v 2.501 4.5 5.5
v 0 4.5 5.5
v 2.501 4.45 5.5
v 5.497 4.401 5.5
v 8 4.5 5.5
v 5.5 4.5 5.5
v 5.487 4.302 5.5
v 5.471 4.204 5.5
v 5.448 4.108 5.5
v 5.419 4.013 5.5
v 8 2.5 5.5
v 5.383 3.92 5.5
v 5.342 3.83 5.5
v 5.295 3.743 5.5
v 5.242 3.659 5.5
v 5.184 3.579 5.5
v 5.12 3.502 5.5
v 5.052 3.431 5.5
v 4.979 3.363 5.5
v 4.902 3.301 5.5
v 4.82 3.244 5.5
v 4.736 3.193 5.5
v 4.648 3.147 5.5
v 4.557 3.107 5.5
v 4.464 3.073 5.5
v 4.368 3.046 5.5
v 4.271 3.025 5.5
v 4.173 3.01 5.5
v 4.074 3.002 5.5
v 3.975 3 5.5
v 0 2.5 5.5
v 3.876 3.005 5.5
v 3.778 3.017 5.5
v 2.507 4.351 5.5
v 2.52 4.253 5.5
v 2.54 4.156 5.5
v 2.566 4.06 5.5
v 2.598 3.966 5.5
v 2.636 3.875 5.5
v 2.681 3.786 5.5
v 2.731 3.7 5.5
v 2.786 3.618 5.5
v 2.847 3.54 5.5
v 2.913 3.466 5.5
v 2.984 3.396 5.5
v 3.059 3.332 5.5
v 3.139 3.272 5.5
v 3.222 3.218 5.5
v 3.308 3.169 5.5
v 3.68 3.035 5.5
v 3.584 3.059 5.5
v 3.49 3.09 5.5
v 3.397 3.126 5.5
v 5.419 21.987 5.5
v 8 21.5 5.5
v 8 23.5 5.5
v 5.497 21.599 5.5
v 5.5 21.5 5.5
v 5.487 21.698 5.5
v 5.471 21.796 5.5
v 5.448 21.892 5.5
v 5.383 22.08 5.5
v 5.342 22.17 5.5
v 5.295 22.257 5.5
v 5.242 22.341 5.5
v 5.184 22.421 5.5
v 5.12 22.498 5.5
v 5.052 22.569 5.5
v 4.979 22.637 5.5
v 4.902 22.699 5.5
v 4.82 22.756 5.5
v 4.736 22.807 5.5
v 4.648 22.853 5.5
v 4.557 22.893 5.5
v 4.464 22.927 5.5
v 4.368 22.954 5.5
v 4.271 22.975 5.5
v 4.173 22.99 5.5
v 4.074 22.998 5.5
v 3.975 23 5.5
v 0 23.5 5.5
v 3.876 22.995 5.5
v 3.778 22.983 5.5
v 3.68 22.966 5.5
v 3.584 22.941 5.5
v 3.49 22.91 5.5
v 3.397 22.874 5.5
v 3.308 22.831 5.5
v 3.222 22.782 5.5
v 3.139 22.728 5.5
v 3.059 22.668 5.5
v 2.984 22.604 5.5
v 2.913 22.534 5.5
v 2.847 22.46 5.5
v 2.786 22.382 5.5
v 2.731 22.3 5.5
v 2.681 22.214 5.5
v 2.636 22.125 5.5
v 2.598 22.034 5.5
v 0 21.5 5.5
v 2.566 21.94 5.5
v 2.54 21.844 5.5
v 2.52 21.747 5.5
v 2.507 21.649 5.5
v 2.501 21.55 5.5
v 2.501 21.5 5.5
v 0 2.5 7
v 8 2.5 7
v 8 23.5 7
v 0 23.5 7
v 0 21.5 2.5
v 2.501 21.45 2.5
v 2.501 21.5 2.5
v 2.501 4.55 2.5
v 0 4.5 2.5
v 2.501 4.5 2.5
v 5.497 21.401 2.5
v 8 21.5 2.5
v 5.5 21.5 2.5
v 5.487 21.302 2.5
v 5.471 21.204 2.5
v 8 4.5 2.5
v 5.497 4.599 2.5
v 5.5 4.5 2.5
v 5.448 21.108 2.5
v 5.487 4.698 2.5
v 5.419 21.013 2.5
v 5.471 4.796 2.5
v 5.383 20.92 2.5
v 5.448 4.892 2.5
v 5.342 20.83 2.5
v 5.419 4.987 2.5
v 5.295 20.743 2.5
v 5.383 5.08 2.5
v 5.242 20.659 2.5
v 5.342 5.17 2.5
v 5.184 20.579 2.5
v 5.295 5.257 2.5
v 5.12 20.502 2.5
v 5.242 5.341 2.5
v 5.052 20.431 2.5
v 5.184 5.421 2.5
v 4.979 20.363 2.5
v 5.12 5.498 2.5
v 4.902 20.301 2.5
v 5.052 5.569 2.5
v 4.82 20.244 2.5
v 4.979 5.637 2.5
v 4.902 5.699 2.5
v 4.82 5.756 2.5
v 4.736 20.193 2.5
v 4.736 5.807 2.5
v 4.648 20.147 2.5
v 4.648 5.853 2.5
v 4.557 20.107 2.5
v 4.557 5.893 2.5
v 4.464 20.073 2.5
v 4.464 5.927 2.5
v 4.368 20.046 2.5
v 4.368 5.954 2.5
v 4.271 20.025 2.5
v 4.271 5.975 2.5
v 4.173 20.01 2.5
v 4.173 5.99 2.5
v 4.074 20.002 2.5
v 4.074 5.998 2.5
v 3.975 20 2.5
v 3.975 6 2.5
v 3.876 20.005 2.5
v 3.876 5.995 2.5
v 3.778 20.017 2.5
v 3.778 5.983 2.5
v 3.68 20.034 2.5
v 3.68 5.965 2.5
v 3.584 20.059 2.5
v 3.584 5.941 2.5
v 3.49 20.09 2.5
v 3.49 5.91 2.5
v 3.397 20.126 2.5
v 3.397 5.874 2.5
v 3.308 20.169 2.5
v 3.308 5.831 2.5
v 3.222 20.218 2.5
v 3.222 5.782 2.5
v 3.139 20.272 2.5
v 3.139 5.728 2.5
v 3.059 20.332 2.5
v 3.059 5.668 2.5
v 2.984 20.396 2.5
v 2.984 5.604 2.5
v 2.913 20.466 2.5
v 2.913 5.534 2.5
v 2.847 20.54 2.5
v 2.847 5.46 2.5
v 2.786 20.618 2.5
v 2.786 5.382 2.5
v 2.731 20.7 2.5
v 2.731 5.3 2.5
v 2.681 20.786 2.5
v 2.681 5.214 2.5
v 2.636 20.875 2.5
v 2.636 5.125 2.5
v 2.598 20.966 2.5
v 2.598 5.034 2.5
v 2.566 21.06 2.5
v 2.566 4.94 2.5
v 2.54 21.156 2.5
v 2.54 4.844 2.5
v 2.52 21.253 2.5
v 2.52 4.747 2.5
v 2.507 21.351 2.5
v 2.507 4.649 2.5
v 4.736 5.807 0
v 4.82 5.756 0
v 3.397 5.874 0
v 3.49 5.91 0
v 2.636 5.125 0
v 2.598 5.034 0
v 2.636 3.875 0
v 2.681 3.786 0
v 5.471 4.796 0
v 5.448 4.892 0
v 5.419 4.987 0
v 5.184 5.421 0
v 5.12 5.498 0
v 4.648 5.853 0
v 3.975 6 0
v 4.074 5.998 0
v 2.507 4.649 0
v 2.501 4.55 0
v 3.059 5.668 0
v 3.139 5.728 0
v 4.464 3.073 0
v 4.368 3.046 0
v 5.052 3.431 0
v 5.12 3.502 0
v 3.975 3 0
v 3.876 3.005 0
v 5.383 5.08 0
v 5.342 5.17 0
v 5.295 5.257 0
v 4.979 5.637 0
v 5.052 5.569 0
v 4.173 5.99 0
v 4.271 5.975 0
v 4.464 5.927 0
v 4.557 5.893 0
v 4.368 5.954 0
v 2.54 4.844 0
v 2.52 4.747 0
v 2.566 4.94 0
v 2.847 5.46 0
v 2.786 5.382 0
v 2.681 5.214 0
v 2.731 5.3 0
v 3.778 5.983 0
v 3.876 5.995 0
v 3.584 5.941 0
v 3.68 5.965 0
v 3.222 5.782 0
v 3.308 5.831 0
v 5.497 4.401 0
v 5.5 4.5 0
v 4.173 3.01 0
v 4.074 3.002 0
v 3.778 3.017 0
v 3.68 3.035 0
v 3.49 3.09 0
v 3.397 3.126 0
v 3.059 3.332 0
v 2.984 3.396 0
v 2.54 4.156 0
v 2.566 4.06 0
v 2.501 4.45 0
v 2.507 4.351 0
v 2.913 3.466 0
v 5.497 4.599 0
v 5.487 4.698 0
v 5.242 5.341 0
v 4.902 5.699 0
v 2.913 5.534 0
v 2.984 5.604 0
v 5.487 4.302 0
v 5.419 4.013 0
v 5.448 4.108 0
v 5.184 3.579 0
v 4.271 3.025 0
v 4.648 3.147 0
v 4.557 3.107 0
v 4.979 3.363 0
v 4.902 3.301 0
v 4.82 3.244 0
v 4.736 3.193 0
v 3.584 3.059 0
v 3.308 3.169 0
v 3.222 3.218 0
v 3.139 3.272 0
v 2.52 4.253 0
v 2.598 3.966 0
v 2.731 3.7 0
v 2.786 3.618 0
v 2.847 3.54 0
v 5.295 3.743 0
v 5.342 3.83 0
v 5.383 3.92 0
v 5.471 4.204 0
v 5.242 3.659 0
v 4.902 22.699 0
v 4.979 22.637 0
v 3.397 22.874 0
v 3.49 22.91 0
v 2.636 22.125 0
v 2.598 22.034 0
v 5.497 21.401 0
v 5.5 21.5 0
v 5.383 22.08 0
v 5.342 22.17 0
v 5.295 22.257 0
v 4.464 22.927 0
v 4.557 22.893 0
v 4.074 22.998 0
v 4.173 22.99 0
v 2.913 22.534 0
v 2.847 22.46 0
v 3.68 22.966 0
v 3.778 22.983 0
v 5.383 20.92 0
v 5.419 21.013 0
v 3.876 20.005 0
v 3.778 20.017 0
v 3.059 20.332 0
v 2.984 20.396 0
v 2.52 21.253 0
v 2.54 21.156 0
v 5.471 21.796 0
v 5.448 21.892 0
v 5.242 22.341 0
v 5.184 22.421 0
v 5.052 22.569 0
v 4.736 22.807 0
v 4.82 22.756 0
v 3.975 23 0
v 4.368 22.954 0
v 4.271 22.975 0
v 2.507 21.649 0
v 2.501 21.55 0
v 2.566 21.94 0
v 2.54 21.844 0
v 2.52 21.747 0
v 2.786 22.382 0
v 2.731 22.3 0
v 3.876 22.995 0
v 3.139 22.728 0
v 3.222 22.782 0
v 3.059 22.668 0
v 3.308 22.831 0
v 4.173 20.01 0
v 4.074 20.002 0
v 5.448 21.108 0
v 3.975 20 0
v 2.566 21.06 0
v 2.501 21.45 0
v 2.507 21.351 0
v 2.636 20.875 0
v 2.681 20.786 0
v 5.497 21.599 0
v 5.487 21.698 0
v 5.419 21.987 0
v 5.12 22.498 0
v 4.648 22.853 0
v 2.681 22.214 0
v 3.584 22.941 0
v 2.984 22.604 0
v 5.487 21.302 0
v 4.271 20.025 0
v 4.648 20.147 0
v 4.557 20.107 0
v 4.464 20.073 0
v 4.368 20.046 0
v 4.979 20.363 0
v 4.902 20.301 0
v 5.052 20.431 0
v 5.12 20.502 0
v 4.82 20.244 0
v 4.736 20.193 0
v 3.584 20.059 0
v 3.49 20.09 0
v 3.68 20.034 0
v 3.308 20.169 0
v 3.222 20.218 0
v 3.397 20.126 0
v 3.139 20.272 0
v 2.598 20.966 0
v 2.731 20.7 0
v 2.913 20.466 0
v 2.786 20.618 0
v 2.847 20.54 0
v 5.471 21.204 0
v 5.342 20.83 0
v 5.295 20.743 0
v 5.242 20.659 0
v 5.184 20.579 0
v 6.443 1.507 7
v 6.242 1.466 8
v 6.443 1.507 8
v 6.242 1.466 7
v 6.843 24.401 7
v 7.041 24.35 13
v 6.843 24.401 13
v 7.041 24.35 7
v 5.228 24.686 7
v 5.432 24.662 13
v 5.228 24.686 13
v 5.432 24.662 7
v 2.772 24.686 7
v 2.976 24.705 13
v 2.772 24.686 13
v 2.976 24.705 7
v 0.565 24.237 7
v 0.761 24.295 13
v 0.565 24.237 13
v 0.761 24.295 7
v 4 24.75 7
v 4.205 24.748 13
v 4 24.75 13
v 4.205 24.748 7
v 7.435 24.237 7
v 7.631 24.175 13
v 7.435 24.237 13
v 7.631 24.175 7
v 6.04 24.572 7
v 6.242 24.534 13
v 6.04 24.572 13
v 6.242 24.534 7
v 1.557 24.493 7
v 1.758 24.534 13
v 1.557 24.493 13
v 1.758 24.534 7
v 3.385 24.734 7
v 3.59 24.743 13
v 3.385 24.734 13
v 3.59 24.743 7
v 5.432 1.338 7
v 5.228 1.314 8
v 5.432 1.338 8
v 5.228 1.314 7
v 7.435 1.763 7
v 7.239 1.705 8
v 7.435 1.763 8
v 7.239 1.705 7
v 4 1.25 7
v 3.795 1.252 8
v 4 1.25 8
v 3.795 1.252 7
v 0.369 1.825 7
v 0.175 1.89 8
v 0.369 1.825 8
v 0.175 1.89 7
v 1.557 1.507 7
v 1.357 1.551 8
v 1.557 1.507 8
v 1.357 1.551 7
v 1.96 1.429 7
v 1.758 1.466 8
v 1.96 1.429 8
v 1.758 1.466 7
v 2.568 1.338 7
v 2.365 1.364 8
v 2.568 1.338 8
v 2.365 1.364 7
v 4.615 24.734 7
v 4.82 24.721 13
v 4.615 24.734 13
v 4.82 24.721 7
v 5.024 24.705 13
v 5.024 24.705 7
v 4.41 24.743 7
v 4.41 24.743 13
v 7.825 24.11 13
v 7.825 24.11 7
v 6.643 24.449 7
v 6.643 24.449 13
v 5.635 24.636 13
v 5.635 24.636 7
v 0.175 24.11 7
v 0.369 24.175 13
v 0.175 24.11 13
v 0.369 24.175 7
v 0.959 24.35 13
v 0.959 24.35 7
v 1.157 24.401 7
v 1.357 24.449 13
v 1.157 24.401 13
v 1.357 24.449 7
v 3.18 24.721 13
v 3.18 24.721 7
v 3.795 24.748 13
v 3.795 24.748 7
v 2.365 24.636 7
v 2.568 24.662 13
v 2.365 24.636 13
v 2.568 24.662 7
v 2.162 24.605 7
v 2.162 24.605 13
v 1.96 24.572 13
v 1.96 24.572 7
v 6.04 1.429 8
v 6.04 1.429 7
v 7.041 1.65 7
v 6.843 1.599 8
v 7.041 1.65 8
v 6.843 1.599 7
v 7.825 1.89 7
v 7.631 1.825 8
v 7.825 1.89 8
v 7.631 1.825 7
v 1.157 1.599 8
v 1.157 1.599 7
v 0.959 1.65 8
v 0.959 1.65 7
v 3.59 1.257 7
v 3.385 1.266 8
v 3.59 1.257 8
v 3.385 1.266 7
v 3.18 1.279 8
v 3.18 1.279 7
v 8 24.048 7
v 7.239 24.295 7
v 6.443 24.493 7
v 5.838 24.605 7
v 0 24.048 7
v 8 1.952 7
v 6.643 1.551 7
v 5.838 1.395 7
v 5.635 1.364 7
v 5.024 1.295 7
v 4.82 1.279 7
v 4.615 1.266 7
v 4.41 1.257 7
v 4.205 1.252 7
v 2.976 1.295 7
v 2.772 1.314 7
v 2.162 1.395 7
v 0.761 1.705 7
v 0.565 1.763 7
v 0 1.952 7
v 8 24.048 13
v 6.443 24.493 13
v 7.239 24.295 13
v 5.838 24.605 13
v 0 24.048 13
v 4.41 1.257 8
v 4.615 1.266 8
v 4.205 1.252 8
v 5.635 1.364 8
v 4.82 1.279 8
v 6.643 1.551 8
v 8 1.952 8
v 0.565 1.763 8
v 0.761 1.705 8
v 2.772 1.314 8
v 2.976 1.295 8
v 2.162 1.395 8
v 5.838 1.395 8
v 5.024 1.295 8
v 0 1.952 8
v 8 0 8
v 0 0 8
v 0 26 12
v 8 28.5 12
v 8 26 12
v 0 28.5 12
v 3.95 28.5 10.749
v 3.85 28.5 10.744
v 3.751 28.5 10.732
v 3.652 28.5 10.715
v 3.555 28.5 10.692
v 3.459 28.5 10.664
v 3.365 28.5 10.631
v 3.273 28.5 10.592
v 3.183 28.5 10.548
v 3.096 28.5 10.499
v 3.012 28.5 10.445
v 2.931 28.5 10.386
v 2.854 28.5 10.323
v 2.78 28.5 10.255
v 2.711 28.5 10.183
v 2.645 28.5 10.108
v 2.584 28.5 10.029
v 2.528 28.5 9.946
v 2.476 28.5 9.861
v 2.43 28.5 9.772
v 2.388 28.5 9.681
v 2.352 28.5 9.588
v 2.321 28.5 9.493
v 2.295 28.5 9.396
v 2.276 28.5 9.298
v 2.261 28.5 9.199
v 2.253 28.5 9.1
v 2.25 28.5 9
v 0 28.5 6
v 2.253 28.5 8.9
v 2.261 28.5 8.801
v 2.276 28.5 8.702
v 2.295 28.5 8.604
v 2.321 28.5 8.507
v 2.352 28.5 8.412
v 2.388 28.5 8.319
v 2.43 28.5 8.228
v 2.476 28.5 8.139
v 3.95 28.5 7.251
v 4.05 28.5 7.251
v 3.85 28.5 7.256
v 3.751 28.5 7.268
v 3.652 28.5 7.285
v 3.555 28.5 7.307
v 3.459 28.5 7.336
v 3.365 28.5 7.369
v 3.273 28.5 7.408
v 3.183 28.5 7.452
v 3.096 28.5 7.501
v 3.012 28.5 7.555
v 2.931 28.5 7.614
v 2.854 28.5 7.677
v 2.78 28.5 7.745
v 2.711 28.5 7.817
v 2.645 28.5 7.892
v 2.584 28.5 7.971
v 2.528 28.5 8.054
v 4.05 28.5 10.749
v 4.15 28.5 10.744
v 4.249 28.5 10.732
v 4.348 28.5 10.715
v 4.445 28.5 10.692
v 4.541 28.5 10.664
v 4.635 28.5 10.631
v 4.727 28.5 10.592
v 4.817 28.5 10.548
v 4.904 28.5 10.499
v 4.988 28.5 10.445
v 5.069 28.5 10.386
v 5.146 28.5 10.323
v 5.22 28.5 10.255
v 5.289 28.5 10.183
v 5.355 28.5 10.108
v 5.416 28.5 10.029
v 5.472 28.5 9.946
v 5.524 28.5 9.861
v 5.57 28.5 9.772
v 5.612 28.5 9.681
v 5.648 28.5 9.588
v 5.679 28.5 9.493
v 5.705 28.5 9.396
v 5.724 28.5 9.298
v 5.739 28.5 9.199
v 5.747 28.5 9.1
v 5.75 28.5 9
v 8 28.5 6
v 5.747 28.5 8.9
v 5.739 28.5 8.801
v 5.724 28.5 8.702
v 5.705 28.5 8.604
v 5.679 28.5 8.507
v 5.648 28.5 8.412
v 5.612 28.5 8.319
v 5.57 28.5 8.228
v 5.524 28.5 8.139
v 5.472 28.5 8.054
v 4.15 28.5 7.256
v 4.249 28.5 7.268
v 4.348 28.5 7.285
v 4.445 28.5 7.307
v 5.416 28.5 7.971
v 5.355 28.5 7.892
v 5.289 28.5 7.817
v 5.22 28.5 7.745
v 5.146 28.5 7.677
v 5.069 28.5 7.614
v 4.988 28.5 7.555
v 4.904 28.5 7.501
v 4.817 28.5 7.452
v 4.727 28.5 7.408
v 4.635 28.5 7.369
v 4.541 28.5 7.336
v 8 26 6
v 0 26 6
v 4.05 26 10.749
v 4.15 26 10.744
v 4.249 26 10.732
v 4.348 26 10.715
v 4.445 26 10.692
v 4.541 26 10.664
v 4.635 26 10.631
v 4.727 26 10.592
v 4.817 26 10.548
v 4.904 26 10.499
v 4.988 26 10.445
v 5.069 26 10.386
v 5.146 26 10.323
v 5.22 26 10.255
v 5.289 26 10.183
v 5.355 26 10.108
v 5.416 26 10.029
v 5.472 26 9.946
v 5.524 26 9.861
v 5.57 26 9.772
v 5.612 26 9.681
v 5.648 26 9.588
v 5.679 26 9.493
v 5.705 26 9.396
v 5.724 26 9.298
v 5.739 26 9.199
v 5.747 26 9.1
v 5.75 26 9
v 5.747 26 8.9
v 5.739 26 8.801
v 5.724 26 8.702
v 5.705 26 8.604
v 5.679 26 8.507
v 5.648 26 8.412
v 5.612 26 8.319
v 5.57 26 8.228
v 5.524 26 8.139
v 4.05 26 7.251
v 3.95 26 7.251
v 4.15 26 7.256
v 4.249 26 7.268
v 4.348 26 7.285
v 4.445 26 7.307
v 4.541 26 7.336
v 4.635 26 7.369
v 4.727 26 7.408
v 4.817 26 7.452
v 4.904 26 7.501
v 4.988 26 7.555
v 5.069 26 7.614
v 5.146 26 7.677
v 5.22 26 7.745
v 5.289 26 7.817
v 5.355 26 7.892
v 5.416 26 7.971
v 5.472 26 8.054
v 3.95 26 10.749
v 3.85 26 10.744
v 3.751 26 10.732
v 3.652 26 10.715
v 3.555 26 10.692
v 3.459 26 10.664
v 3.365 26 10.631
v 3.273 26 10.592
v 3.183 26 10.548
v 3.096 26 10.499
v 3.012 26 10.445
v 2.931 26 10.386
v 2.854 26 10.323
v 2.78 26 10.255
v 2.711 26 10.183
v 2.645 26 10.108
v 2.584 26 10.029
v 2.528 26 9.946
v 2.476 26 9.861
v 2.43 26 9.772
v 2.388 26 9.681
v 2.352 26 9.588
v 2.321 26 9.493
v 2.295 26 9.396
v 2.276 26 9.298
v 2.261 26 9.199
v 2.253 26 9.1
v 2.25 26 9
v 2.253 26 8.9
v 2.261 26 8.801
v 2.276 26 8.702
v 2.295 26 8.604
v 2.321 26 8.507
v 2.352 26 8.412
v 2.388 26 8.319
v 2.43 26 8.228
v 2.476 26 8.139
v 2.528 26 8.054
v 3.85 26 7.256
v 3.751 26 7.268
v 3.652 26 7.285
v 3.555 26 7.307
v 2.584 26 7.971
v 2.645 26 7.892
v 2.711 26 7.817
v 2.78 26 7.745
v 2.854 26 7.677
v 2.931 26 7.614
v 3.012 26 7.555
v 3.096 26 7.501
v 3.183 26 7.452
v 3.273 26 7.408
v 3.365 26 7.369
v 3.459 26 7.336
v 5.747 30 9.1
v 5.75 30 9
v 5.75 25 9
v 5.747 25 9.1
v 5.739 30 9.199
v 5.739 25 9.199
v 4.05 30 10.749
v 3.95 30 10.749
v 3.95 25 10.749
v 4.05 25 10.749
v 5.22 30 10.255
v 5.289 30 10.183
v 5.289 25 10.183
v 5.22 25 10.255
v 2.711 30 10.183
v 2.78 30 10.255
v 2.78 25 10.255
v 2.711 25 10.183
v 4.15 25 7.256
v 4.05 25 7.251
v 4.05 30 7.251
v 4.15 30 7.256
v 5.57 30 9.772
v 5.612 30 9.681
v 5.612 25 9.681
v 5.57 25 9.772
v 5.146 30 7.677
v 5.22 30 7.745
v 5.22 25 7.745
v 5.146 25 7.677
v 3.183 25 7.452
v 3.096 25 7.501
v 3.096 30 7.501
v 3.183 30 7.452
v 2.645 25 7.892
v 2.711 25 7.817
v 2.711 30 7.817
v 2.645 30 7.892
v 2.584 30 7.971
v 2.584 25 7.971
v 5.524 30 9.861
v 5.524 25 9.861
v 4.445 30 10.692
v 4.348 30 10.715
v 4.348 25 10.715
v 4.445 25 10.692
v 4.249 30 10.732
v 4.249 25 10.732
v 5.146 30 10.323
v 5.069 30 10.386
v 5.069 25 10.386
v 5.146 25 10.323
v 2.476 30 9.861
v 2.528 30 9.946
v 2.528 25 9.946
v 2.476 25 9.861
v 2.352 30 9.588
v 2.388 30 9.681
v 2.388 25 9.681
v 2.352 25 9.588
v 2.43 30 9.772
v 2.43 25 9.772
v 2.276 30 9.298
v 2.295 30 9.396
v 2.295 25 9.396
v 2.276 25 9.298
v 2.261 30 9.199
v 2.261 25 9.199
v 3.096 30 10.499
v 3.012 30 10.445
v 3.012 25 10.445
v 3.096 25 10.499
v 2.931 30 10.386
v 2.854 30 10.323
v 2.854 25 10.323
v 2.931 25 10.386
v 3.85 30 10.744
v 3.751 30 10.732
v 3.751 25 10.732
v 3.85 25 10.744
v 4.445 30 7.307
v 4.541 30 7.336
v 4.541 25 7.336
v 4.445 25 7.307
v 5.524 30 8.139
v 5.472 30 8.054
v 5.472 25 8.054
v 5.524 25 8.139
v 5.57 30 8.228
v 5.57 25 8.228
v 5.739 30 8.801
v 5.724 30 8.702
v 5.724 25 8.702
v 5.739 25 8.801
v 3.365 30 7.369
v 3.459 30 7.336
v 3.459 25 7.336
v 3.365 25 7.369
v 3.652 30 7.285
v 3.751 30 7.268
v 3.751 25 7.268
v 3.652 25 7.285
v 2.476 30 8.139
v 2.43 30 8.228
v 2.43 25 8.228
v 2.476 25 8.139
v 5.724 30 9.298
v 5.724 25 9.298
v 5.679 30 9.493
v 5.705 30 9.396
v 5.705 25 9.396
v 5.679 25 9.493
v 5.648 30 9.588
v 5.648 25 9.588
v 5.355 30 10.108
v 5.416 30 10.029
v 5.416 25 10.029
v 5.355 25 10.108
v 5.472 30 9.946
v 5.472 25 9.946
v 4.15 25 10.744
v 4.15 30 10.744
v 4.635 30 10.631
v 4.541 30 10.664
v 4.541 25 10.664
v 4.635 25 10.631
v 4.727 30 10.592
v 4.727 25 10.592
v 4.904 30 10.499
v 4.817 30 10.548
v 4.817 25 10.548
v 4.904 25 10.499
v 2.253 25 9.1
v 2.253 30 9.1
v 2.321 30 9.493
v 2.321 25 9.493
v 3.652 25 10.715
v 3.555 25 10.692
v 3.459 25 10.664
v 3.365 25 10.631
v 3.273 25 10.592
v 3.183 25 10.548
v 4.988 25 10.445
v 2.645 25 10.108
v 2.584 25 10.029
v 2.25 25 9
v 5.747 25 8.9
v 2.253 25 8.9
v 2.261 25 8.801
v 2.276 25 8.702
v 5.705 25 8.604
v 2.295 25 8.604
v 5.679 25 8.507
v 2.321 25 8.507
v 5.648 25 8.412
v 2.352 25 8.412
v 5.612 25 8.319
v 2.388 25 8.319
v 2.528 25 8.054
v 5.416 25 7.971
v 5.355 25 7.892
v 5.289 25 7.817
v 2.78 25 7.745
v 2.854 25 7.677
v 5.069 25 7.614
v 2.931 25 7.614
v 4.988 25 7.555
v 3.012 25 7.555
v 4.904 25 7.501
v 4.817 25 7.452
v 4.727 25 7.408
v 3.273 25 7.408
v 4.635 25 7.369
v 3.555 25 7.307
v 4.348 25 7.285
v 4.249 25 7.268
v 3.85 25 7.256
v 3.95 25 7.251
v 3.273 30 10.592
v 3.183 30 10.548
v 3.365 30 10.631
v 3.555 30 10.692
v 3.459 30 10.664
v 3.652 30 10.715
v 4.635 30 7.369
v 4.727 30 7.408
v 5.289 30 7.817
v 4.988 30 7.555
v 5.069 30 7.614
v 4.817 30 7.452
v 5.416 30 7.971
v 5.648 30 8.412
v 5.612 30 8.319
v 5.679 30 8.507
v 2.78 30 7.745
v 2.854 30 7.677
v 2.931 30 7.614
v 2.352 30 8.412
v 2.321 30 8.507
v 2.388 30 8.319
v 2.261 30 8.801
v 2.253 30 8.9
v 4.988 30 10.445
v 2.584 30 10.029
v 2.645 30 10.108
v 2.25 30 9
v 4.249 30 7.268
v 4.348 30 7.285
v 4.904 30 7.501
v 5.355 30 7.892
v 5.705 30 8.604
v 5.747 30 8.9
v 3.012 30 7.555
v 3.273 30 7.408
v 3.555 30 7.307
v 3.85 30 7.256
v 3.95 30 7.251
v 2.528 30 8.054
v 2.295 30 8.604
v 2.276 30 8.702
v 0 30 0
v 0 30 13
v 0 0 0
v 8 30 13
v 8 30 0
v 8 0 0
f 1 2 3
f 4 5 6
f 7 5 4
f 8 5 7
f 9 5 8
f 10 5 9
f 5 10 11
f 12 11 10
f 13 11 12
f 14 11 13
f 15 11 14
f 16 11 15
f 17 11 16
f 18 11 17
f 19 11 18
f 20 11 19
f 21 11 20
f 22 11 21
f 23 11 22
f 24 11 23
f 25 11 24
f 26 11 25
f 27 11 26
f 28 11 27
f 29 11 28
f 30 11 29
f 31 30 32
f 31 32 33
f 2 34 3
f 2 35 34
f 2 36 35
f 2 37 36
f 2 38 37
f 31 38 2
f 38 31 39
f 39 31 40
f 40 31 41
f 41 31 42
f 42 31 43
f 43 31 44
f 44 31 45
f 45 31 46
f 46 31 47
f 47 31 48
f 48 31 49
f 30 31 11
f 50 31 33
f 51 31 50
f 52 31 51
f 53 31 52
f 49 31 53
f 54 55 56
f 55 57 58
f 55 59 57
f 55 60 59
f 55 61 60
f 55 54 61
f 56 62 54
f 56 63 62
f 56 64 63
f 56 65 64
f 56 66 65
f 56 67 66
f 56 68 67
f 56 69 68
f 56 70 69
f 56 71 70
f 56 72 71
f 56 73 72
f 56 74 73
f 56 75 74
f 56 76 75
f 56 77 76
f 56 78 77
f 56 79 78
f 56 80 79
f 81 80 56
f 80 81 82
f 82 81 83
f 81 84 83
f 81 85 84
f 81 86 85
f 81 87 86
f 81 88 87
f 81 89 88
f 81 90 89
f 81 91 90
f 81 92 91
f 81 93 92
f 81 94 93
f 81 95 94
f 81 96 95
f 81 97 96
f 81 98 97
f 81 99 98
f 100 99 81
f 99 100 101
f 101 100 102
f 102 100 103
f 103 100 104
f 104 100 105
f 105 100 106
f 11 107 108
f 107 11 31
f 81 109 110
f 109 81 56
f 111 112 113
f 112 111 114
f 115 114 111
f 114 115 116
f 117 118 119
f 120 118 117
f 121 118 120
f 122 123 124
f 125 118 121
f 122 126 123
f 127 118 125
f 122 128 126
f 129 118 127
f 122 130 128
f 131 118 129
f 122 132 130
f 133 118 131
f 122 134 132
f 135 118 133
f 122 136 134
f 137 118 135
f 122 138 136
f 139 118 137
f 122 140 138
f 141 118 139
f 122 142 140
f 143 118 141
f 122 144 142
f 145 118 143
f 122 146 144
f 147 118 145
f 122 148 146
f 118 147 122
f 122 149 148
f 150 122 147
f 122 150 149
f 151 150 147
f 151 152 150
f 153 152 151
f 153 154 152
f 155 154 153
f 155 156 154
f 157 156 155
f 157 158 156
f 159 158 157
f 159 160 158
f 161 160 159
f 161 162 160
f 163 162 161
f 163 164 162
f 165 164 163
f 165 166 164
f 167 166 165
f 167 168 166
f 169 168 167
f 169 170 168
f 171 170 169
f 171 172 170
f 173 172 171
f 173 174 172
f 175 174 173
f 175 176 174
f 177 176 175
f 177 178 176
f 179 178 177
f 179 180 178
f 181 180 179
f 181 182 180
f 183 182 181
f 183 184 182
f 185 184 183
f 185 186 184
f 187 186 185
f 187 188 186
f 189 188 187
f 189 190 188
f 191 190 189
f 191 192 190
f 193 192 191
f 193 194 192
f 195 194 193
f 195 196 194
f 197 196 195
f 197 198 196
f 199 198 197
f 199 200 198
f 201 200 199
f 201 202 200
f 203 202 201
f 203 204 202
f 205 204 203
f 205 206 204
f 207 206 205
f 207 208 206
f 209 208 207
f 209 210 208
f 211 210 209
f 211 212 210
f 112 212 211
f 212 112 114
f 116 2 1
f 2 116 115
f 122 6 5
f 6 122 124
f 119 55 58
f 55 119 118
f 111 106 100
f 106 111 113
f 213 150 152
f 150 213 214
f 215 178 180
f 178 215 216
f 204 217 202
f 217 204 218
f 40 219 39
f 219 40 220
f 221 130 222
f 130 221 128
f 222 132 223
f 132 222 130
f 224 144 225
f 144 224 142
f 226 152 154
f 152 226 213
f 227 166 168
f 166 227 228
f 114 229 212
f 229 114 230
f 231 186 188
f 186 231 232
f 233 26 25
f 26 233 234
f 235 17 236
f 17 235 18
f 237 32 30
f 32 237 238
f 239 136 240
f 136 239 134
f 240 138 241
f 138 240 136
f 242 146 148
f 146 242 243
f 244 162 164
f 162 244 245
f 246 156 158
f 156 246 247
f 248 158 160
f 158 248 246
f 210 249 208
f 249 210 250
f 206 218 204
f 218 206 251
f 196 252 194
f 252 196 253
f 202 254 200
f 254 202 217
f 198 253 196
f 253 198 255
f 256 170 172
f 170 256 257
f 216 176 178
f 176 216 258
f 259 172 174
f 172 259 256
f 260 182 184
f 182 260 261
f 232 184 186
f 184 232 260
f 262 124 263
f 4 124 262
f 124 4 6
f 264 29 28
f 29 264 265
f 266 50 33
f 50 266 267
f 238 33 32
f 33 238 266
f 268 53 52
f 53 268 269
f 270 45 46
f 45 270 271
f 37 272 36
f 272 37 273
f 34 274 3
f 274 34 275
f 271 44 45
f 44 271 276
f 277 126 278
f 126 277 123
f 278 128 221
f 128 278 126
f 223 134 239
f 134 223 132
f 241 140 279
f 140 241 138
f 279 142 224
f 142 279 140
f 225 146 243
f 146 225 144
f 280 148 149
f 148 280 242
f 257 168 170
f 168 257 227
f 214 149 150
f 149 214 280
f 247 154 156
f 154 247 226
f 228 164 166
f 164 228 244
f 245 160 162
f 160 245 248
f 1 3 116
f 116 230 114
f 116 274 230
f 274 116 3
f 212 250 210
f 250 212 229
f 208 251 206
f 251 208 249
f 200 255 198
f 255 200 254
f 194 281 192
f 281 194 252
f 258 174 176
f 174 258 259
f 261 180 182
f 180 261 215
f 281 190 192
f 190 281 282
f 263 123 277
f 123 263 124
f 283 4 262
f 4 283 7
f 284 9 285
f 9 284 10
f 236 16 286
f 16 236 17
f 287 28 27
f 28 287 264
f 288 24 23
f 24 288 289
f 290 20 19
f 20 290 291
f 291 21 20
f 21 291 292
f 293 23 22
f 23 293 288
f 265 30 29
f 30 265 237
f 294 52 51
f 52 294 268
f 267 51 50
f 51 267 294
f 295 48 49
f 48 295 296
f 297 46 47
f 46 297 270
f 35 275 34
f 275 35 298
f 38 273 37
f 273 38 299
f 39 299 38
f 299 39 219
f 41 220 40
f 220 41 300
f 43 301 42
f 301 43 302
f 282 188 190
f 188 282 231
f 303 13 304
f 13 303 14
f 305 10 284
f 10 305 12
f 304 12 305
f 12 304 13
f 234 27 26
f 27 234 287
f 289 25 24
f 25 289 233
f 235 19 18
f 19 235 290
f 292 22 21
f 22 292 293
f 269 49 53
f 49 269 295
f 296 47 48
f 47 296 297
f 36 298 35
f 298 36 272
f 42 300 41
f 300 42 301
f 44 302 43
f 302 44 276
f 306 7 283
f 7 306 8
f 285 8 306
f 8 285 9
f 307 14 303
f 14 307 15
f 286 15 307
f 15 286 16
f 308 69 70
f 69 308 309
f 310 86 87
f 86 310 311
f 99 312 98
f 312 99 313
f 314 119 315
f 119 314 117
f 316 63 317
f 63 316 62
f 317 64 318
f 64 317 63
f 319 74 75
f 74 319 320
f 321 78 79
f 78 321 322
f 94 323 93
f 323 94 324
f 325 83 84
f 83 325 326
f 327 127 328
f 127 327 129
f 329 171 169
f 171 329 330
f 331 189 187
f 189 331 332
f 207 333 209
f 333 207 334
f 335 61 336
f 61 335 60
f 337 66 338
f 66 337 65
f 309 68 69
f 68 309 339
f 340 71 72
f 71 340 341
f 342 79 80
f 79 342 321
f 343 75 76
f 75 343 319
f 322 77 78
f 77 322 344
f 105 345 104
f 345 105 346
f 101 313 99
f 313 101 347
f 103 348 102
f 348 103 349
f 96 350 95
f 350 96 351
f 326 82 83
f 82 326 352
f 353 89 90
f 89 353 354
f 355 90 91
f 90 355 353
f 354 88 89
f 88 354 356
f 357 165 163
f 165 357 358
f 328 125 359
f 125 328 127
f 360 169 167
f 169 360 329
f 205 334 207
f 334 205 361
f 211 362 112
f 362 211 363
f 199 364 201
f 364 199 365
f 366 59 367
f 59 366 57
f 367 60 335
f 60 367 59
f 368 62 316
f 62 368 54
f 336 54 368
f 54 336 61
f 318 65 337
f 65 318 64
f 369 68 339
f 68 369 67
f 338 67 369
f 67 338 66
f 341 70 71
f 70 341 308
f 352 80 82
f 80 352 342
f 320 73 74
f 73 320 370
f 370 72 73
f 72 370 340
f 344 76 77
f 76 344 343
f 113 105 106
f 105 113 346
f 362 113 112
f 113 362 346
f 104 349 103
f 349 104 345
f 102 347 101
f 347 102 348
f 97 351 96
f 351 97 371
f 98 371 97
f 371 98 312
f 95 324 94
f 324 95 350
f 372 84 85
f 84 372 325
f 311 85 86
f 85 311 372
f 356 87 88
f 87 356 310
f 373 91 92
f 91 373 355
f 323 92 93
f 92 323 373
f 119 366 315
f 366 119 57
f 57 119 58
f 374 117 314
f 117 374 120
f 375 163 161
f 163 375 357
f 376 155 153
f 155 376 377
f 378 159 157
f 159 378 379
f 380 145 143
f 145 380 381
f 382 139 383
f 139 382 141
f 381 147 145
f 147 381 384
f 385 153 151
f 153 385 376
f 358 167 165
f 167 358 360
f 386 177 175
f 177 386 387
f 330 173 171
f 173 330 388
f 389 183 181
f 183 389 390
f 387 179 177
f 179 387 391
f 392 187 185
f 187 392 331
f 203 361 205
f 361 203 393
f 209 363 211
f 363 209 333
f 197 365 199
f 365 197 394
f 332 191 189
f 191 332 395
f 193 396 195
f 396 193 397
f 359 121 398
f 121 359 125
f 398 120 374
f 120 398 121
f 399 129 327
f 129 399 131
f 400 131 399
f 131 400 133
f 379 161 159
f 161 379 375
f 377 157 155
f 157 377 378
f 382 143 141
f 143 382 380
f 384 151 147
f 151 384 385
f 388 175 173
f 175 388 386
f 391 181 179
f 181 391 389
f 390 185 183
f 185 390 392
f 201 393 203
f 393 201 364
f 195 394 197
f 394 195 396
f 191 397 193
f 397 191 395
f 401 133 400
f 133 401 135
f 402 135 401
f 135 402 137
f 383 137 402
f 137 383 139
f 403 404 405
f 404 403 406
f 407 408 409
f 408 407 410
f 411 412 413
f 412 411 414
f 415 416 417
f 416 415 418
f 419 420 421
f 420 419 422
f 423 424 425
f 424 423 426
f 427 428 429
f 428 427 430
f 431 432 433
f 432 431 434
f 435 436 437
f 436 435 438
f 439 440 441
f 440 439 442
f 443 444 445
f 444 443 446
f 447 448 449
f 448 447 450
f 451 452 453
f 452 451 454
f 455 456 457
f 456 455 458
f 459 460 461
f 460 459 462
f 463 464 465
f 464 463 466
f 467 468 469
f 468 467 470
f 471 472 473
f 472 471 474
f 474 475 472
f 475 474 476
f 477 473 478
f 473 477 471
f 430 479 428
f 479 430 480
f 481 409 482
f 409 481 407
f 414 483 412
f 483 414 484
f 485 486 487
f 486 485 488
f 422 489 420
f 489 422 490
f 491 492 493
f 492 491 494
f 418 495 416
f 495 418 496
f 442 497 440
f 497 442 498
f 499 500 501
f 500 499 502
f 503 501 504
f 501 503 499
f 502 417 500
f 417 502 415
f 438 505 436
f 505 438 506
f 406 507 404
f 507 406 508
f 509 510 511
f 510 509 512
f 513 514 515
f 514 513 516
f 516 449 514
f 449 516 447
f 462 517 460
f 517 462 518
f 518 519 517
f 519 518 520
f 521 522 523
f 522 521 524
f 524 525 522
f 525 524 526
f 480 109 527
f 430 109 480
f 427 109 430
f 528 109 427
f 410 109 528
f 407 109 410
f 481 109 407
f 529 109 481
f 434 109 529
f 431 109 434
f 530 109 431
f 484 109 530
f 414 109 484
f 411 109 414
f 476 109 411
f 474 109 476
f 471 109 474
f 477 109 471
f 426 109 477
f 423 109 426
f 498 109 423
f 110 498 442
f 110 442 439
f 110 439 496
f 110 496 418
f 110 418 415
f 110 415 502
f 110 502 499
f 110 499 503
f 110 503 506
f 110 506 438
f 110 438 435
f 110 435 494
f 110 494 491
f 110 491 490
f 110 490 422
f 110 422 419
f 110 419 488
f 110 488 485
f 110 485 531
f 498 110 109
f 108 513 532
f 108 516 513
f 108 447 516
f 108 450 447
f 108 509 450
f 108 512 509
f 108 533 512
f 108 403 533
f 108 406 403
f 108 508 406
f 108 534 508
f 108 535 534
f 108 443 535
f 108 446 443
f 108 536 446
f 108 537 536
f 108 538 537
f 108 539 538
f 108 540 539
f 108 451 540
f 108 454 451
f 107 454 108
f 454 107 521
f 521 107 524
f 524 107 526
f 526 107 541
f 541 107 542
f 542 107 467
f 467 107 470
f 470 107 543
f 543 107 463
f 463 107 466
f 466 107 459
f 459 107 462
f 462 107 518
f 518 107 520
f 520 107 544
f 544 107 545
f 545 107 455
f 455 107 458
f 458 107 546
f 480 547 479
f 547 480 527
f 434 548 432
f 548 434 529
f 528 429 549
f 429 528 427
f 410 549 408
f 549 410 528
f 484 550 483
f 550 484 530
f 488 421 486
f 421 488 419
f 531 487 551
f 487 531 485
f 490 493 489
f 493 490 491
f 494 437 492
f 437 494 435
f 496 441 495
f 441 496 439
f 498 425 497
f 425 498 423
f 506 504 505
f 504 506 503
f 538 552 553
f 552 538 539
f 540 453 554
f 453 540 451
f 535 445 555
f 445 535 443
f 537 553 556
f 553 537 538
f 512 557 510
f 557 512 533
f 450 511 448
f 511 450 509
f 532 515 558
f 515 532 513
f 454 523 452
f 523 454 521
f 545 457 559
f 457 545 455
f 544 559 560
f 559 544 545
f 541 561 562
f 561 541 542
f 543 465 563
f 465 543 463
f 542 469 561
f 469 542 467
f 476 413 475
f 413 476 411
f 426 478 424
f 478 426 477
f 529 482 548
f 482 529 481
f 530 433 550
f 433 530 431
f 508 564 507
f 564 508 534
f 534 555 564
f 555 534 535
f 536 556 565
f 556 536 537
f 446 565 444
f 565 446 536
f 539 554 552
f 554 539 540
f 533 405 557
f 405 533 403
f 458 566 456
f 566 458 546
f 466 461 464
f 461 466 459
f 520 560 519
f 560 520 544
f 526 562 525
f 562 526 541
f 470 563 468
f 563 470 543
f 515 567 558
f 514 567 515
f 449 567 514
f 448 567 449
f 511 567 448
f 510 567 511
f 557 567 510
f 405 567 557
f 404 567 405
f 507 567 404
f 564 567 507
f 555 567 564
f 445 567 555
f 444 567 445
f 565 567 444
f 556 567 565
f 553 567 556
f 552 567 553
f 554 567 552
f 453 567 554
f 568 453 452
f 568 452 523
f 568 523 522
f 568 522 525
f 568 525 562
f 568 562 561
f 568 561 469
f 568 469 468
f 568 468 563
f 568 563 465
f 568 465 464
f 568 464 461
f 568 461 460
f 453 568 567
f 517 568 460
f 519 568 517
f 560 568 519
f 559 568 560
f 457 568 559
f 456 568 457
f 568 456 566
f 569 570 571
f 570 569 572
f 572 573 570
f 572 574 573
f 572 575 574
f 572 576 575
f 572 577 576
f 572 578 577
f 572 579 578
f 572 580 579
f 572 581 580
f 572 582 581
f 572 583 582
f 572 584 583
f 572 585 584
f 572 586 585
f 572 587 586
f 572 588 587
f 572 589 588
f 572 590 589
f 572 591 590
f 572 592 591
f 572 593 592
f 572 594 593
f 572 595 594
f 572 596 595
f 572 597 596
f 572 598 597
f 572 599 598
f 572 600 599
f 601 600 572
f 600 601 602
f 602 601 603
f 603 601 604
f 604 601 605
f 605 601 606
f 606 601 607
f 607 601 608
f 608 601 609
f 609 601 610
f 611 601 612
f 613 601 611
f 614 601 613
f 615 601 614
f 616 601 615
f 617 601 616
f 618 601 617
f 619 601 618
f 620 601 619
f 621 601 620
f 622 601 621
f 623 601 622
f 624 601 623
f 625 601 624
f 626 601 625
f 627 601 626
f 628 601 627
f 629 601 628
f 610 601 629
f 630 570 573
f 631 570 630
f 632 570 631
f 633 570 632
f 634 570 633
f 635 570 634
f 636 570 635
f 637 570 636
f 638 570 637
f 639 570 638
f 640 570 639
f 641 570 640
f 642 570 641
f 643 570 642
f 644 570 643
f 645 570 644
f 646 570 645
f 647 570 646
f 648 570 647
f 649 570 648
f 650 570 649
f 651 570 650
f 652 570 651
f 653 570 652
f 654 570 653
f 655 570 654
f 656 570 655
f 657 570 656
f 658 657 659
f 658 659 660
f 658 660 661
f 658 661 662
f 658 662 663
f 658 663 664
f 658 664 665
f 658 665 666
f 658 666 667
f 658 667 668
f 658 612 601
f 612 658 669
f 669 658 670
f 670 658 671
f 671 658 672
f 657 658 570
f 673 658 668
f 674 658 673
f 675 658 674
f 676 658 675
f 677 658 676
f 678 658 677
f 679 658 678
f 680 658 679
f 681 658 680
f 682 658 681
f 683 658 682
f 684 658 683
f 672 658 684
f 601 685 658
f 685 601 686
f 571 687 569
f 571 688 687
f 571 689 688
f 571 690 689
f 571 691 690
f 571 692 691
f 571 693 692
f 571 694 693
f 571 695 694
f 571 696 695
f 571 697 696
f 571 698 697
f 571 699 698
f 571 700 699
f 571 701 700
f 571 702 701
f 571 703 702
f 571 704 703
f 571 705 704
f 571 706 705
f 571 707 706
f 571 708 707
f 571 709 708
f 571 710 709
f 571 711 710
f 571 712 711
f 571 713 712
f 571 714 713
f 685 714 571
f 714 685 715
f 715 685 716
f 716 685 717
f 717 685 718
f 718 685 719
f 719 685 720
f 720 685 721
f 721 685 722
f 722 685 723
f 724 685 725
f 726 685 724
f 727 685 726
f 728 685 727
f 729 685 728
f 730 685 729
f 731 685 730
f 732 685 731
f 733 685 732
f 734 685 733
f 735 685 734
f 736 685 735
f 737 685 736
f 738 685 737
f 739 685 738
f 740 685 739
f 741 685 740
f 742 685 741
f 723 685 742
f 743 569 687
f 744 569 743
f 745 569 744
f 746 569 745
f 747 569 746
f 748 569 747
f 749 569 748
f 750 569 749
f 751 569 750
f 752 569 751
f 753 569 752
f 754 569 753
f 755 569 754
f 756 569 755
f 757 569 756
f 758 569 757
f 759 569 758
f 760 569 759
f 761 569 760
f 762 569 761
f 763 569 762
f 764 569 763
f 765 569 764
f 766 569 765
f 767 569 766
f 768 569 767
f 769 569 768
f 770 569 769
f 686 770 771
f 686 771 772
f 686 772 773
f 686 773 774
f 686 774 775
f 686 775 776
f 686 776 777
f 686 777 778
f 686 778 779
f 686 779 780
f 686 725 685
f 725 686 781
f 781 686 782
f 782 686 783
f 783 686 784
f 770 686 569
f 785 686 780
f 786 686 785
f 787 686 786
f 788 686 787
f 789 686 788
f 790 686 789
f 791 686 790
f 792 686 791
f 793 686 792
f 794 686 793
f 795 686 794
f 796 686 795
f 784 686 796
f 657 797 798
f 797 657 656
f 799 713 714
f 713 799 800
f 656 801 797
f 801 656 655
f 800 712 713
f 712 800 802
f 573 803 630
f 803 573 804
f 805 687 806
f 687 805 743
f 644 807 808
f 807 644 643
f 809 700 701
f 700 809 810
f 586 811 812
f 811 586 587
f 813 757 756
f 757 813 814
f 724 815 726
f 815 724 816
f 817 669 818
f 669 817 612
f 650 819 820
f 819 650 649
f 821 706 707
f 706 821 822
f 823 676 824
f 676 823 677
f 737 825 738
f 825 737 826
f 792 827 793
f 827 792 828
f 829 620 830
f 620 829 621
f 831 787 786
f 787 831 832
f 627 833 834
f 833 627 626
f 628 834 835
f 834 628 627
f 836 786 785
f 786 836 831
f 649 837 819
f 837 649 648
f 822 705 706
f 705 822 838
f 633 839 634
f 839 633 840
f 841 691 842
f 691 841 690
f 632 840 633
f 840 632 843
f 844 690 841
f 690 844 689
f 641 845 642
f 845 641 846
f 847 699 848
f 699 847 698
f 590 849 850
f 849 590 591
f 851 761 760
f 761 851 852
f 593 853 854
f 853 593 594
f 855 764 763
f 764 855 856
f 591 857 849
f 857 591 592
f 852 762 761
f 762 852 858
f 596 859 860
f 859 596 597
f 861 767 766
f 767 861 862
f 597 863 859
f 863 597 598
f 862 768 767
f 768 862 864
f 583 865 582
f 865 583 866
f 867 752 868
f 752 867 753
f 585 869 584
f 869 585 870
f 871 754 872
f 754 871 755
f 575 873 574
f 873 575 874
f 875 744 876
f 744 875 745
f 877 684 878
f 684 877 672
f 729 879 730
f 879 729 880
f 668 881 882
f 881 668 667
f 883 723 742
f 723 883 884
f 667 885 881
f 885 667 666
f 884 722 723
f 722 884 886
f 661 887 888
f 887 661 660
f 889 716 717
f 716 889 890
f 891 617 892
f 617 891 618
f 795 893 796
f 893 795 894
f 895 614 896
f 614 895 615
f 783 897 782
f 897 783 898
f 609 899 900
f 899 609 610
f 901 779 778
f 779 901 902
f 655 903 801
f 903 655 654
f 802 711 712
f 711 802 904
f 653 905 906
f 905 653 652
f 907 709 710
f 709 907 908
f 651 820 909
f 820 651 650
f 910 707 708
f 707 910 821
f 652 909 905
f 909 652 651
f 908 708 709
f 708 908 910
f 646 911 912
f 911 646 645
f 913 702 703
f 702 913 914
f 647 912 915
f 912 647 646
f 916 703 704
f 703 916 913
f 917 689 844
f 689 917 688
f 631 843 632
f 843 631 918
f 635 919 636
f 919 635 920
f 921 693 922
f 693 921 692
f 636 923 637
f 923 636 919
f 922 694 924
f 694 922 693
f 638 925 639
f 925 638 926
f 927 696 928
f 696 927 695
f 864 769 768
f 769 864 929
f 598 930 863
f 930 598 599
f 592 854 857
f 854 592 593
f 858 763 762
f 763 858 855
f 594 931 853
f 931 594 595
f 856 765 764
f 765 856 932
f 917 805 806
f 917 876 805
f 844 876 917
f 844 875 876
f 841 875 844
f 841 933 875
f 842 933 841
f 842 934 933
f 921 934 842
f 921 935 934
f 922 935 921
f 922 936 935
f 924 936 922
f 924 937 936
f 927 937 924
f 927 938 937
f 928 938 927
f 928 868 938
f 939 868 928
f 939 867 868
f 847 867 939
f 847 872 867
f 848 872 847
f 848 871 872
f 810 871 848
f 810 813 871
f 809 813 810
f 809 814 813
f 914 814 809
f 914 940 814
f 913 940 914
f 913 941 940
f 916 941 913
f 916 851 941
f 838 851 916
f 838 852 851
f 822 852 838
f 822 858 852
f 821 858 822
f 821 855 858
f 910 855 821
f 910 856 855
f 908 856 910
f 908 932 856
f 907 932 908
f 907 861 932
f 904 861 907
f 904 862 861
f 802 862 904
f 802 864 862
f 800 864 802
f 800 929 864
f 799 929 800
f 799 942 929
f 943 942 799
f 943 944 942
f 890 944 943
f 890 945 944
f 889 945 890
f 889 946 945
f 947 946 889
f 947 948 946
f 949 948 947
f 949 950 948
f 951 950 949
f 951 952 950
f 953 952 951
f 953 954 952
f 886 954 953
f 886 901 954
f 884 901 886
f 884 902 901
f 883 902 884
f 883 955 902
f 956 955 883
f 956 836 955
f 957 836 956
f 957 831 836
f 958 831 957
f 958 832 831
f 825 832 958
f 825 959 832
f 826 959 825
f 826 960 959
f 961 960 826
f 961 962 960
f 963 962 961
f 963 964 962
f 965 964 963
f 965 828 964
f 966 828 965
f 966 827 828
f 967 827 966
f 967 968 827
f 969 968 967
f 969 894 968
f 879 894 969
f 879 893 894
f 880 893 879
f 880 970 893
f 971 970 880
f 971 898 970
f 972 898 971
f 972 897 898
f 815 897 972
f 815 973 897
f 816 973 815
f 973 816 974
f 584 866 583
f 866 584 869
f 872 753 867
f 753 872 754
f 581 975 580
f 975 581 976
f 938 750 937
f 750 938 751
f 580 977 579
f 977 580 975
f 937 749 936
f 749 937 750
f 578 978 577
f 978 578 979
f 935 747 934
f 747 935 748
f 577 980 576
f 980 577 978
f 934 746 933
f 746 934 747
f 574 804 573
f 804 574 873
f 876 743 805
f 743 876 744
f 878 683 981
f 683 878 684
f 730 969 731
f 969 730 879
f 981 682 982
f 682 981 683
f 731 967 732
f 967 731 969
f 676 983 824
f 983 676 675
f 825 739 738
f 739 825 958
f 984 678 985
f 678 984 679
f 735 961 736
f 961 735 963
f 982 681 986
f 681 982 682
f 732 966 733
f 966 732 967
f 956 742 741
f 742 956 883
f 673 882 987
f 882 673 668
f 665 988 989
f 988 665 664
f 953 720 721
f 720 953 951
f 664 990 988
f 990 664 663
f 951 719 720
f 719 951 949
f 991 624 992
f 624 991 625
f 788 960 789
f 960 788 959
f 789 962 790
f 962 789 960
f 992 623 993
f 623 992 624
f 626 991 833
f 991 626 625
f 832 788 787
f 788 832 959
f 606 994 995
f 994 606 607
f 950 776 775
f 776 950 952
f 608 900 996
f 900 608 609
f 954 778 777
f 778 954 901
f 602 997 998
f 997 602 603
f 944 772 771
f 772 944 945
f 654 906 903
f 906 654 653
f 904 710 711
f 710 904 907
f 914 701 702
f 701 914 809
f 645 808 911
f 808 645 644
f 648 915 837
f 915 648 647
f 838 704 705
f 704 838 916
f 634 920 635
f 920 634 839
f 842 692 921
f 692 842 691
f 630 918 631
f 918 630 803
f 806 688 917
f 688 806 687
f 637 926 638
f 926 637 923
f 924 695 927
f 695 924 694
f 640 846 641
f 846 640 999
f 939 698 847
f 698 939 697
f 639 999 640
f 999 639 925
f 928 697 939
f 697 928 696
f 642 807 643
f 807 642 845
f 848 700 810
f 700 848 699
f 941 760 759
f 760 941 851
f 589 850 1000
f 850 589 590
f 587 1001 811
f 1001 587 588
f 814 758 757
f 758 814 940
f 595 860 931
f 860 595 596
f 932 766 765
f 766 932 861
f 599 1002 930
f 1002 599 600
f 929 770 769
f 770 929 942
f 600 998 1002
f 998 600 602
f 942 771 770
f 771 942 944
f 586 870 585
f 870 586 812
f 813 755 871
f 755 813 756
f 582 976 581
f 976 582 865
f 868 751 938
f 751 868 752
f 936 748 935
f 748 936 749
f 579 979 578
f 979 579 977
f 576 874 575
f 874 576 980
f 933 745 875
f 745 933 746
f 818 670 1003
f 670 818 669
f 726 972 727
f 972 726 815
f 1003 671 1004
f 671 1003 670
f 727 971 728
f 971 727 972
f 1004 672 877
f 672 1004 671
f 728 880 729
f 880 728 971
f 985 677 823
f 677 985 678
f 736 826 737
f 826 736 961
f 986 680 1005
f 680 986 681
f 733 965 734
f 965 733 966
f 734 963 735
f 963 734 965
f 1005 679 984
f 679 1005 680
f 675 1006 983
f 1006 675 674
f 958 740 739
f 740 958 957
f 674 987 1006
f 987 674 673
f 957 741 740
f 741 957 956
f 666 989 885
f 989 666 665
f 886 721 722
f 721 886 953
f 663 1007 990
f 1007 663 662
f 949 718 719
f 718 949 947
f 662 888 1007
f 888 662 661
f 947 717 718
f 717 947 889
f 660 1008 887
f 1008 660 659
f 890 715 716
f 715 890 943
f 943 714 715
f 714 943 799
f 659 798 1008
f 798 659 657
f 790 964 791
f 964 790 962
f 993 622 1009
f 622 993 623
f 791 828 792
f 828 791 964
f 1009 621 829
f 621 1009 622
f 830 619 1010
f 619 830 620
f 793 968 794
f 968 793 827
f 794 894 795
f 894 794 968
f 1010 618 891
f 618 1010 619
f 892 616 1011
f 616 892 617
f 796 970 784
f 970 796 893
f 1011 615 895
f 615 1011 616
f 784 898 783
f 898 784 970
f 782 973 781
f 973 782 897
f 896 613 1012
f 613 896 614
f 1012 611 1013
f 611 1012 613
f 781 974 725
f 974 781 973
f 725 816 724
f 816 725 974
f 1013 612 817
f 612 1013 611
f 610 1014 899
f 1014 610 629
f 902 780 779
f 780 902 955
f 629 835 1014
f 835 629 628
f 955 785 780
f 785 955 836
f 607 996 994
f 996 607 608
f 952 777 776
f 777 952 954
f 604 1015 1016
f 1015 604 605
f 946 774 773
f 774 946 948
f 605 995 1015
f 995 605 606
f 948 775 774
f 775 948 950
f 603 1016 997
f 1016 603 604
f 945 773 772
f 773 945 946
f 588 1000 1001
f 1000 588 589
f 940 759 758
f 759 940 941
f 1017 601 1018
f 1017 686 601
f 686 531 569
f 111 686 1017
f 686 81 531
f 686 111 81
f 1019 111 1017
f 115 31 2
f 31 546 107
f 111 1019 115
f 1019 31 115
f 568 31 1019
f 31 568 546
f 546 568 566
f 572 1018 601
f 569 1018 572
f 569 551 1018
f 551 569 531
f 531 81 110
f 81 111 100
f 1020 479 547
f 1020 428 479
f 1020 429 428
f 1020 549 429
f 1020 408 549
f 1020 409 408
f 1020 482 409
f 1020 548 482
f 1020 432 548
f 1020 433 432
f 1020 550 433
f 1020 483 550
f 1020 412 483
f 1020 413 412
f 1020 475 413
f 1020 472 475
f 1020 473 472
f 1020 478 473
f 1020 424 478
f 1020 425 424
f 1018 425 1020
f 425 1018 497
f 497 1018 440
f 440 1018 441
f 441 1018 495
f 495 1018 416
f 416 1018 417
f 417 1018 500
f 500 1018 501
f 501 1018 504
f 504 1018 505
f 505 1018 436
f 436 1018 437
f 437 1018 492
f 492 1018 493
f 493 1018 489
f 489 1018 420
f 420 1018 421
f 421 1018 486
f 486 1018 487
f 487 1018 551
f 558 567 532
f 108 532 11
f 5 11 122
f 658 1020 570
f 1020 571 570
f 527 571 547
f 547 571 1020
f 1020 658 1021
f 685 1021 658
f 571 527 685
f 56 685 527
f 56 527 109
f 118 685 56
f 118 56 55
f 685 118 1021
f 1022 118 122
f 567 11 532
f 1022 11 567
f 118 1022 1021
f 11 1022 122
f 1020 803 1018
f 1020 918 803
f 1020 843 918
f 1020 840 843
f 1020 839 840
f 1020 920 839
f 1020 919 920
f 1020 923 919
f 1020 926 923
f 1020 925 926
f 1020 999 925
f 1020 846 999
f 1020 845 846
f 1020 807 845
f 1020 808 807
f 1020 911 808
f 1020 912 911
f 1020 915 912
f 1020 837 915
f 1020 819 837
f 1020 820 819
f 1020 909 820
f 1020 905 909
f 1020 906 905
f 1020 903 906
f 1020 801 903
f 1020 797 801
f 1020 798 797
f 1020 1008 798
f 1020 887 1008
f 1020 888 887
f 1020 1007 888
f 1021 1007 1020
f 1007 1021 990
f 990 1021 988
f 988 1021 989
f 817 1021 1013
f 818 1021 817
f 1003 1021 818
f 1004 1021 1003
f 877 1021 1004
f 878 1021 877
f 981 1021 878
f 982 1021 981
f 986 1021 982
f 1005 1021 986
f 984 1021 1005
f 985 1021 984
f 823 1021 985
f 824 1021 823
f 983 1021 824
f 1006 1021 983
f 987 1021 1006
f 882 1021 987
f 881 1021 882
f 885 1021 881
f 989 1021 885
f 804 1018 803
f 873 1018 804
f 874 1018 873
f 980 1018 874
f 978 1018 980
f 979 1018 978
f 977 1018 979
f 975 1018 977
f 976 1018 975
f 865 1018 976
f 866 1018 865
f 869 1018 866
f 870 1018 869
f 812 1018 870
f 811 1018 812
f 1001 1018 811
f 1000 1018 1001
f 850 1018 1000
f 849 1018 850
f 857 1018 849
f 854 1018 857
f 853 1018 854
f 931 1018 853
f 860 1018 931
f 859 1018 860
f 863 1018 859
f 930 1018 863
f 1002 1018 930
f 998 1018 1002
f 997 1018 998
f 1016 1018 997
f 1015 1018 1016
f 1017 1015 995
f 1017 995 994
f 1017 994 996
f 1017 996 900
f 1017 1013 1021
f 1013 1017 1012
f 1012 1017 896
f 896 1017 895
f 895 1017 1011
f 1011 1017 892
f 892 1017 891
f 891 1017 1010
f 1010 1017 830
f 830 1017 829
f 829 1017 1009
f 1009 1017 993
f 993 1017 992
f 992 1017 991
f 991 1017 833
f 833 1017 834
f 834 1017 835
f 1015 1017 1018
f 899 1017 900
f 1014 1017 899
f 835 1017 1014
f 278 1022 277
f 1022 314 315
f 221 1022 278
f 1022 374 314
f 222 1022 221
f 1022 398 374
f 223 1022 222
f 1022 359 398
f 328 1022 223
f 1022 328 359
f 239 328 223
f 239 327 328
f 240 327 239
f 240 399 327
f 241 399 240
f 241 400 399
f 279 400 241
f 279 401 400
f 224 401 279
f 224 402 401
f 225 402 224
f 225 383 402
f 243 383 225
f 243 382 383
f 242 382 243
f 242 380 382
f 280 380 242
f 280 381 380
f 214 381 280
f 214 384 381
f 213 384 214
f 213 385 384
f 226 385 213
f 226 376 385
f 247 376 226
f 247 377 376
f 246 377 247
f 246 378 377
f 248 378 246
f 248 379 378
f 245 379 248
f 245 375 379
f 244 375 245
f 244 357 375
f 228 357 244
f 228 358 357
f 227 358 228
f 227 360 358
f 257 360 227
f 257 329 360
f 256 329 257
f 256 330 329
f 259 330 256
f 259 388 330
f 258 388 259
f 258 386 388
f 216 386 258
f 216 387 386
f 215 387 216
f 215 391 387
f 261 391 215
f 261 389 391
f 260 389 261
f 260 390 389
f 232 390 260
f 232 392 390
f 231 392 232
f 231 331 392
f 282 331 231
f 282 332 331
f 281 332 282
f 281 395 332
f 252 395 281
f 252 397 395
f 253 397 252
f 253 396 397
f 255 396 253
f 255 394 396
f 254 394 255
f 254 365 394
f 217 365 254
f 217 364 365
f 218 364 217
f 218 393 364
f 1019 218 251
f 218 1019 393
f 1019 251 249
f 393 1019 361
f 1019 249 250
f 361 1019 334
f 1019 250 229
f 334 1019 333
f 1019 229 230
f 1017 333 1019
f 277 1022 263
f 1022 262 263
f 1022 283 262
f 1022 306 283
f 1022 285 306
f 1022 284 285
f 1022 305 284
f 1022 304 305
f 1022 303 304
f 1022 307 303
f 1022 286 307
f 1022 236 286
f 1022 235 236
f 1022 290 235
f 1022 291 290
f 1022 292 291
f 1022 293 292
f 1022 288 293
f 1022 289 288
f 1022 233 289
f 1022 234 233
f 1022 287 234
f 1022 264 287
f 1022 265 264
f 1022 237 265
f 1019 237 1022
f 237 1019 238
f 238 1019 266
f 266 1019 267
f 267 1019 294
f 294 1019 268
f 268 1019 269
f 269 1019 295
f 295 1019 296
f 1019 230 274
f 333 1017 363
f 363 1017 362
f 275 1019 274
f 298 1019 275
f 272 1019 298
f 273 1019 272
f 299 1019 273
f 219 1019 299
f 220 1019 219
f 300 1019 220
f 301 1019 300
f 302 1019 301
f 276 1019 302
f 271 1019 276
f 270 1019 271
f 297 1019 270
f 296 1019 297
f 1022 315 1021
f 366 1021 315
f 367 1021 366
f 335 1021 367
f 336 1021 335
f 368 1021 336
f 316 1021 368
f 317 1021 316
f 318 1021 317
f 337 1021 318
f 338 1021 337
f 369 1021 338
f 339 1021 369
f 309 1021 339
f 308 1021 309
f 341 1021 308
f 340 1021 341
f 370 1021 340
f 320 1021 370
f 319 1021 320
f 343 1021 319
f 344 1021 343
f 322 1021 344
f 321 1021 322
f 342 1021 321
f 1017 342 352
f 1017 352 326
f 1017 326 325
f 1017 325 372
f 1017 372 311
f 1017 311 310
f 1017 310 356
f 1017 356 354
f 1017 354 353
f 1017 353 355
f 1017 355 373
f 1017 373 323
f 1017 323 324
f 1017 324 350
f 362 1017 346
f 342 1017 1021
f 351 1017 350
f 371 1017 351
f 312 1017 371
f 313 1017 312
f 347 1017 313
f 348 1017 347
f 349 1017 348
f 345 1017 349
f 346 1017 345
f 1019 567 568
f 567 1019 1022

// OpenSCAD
$fa=1;
$fs=0.1;

module screwhole() {
  cylinder (r=1.5,h=20);
}

module nuthole() {
  union () {
    cube ([10,2.5,6]);
    translate ([5,9,3]) {
      rotate ([90,0,0]){
        cylinder (r=3.5/2,h=10);
      }
    }
  }

}

module camIC() {
  cylinder (r=23.5/2, h=20);
}
module componentGap () {
  union () {
    cube ([20,21,11]);
    translate ([1,2,-3]) {
      cube ([18,17,11]);
    }
  }
}

module mainCutout () {
  union () {
    camIC();
    translate ([-10,-10.5,-1.5]){
      componentGap();
    }
    translate ([-10,-15,1]){
      cube (20,10,10);
    }
    translate ([0,-8.5,-15]) {
      screwhole ();
      translate ([0,17,0]) {
        screwhole ();
      }
    }
  }
}

// combination
difference () {
  cube ([8,30,13]);
  union ()  {
    translate ([4,13,7]) {
      mainCutout() ;
    }
    translate ([-1,26,6]) {
      nuthole();
    }
  }
}


//test viz
translate ([50,50,0]) {
//  mainCutout();
}
